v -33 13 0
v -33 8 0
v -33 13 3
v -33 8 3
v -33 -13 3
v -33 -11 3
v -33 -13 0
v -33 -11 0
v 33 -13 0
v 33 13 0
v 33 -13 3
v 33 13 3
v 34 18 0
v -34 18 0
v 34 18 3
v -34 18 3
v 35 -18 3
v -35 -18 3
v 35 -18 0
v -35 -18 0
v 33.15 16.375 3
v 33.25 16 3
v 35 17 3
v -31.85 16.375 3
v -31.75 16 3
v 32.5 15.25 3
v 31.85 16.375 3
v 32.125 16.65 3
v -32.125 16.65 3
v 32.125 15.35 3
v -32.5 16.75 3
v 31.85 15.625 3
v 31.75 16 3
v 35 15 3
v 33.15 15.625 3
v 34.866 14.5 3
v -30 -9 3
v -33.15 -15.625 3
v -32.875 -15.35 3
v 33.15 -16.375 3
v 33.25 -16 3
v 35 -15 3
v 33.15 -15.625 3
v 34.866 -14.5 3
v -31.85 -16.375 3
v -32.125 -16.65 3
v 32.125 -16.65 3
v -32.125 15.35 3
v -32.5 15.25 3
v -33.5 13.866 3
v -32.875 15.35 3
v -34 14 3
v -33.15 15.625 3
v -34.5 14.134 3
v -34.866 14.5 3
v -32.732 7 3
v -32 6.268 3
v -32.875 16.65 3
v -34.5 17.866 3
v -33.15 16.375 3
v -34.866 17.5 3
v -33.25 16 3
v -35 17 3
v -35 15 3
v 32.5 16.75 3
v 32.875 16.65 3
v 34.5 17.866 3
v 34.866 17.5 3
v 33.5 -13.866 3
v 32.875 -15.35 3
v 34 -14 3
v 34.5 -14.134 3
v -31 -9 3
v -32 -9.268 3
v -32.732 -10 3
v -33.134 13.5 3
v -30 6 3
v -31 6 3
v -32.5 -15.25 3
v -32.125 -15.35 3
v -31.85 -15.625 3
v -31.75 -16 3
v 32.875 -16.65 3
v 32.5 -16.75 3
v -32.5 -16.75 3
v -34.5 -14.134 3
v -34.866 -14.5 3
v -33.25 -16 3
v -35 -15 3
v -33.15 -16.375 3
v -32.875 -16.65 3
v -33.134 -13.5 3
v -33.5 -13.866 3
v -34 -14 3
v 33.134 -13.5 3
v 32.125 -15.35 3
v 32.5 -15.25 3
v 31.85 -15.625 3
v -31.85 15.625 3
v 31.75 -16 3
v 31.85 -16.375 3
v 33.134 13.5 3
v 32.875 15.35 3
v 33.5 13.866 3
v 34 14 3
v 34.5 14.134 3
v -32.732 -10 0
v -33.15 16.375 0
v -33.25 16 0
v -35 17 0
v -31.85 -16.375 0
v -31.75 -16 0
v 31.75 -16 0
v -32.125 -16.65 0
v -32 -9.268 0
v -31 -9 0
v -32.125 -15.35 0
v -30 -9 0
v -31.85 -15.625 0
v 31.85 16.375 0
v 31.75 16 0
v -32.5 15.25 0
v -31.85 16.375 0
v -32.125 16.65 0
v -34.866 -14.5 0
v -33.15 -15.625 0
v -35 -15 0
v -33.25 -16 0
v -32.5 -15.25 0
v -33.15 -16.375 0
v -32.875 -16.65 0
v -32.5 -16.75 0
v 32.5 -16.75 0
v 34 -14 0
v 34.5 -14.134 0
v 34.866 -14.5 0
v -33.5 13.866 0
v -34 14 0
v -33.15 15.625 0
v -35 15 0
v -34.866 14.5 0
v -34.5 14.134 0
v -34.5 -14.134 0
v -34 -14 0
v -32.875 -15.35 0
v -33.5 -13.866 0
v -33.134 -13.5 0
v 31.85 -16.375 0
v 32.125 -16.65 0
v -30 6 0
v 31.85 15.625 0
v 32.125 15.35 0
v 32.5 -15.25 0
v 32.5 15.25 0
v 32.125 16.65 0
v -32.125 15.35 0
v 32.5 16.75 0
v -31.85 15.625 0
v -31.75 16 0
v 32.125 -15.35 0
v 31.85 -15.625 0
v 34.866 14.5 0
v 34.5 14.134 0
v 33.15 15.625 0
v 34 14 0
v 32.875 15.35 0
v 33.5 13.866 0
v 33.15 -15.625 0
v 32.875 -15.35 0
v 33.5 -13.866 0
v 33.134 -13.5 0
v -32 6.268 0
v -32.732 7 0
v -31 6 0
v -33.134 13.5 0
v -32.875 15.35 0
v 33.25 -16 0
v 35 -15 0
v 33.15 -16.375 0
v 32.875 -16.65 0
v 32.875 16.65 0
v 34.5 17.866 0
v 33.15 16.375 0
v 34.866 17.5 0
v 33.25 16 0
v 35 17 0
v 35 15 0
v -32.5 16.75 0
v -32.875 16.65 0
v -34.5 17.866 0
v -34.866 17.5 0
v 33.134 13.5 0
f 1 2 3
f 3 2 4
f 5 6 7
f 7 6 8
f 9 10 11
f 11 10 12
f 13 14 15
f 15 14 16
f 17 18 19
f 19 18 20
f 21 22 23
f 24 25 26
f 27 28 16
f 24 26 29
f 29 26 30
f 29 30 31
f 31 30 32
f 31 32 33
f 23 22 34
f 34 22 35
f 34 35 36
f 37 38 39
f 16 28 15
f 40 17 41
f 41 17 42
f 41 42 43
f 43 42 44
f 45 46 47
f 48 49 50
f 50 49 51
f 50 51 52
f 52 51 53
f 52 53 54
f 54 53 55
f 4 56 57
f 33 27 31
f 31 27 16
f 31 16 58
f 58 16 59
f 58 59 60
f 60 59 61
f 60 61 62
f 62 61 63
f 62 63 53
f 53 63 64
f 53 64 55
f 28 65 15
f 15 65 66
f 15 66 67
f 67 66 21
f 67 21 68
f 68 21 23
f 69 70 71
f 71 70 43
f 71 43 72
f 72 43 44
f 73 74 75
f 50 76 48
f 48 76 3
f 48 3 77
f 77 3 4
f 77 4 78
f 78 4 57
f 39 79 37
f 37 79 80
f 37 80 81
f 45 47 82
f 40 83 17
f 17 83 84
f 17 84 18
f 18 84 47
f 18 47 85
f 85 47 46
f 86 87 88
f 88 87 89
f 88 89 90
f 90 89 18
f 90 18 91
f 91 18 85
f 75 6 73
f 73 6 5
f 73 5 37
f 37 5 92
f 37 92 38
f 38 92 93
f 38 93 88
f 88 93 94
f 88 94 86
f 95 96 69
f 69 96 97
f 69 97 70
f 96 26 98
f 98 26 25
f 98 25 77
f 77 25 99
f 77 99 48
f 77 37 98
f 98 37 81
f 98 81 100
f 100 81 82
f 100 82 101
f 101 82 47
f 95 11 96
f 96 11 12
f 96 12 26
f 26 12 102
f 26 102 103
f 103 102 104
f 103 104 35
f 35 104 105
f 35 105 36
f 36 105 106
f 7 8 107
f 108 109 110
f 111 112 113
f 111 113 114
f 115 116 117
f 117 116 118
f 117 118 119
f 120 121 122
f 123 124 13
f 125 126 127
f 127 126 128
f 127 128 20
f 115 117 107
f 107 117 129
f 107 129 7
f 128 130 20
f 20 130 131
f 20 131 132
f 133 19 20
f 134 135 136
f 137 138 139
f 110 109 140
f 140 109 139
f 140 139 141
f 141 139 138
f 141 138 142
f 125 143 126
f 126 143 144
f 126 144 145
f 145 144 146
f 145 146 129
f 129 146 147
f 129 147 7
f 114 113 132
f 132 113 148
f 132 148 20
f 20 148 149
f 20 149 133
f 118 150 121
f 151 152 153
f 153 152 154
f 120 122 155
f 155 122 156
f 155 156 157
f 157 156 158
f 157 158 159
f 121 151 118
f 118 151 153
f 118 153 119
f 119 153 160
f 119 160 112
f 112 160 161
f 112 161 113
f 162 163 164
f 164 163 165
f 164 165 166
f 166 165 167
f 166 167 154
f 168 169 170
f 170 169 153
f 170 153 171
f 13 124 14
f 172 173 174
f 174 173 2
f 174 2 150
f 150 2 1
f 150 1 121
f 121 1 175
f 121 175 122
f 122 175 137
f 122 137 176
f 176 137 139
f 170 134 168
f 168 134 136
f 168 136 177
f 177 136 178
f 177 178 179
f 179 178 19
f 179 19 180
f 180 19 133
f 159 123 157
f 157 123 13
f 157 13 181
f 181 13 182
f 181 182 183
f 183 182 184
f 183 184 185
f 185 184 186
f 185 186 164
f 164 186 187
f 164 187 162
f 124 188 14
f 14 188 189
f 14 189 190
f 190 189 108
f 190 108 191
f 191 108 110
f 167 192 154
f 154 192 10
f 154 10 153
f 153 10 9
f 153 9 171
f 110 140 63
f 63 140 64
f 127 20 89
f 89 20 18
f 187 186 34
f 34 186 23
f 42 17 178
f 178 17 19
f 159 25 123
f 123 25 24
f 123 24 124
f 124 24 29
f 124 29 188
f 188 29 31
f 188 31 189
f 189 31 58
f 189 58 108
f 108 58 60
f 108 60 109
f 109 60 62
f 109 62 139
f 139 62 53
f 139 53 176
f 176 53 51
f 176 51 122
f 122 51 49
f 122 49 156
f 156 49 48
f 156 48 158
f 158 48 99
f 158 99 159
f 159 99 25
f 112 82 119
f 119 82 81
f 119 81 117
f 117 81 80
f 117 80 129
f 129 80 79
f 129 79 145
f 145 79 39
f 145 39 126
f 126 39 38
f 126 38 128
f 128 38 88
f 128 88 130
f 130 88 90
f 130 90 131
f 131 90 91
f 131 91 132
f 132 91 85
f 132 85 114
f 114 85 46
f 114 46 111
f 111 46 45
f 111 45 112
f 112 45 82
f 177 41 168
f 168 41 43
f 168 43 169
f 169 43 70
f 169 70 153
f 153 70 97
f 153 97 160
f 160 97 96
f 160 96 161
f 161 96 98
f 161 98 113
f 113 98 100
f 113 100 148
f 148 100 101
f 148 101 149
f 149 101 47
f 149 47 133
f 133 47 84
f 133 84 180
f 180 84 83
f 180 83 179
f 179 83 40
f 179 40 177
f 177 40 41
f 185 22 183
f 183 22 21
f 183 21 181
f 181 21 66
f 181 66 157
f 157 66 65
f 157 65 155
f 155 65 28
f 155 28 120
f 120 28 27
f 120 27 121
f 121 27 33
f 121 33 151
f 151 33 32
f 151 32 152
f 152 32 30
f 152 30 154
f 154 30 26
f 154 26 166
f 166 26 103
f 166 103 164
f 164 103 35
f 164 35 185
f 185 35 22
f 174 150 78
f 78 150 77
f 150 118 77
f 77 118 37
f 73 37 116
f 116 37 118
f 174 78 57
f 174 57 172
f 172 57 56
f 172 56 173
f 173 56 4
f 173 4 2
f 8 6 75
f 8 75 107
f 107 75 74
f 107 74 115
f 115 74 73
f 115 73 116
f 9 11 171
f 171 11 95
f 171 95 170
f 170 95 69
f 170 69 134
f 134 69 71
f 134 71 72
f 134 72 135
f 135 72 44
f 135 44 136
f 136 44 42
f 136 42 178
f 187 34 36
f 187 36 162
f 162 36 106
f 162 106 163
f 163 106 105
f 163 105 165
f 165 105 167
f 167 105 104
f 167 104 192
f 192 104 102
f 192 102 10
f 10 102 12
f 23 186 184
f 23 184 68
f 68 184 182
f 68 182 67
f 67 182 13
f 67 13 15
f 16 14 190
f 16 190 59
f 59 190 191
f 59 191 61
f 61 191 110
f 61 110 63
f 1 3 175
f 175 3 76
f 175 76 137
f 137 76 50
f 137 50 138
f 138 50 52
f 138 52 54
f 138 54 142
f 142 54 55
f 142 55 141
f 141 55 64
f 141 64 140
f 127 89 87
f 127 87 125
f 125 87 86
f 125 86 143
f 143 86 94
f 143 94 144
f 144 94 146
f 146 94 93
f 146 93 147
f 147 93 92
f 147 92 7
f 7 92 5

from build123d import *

# Parameters (mm, degrees)
SKETCH1_W           = 66
SKETCH1_H           = 36
BOSS_EXTRUDE1_DEPTH = 3
SKETCH2_W           = 2
SKETCH2_H           = 4
BOSS_EXTRUDE3_DEPTH = 3
SKETCH3_R           = 0.75
CUT_EXTRUDE1_DEPTH  = 40.471508712
SKETCH4_W           = 3
SKETCH4_H           = 15
CUT_EXTRUDE2_DEPTH  = 40.471508712
FILLET2_R           = 2
FILLET3_R           = 1


with BuildPart() as part:
    # Sketch1 → Boss-Extrude1 (new body)
    with BuildSketch(Plane.XY):
        Rectangle(SKETCH1_W, SKETCH1_H)
    extrude(amount=BOSS_EXTRUDE1_DEPTH)

    # Sketch2 → Boss-Extrude3 (add)
    with BuildSketch(Plane.XY.offset(3)):
        with Locations((-34, 16)):
            Rectangle(SKETCH2_W, SKETCH2_H)
        with Locations((-34, -16)):
            Rectangle(SKETCH2_W, SKETCH2_H)
        with Locations((34, 16)):
            Rectangle(SKETCH2_W, SKETCH2_H)
        with Locations((34, -16)):
            Rectangle(SKETCH2_W, SKETCH2_H)
    extrude(amount=-BOSS_EXTRUDE3_DEPTH)

    # Sketch3 → Cut-Extrude1 (cut, through all)
    with BuildSketch(Plane.XY.offset(3)):
        with Locations((-32.5, 16)):
            Circle(SKETCH3_R)
        with Locations(Location((-32.5, -16, 0), (0, 0, 180))):
            Circle(SKETCH3_R)
        with Locations((32.5, -16)):
            Circle(SKETCH3_R)
        with Locations(Location((32.5, 16, 0), (0, 0, 180))):
            Circle(SKETCH3_R)
    extrude(amount=-CUT_EXTRUDE1_DEPTH, mode=Mode.SUBTRACT)

    # Sketch4 → Cut-Extrude2 (cut, through all)
    with BuildSketch(Plane.XY.offset(3)):
        with Locations((-31.5, -1.5)):
            Rectangle(SKETCH4_W, SKETCH4_H)
    extrude(amount=-CUT_EXTRUDE2_DEPTH, mode=Mode.SUBTRACT)

    # Fillet2
    fillet2_edges = [part.edges().sort_by_distance(p)[0] for p in [
        (-33, -9, 1.5),
        (-33, 6, 1.5),
    ]]
    fillet(fillet2_edges, radius=FILLET2_R)

    # Fillet3
    fillet3_edges = [part.edges().sort_by_distance(p)[0] for p in [
        (35, -14, 1.5),
        (33, -14, 1.5),
        (33, 14, 1.5),
        (35, 14, 1.5),
        (35, 18, 1.5),
        (-35, 18, 1.5),
        (-35, 14, 1.5),
        (-33, 14, 1.5),
        (-33, -14, 1.5),
        (-35, -14, 1.5),
    ]]
    fillet(fillet3_edges, radius=FILLET3_R - 0.0001)  # a hair under: the kernel refuses the full size


solid = part.part
